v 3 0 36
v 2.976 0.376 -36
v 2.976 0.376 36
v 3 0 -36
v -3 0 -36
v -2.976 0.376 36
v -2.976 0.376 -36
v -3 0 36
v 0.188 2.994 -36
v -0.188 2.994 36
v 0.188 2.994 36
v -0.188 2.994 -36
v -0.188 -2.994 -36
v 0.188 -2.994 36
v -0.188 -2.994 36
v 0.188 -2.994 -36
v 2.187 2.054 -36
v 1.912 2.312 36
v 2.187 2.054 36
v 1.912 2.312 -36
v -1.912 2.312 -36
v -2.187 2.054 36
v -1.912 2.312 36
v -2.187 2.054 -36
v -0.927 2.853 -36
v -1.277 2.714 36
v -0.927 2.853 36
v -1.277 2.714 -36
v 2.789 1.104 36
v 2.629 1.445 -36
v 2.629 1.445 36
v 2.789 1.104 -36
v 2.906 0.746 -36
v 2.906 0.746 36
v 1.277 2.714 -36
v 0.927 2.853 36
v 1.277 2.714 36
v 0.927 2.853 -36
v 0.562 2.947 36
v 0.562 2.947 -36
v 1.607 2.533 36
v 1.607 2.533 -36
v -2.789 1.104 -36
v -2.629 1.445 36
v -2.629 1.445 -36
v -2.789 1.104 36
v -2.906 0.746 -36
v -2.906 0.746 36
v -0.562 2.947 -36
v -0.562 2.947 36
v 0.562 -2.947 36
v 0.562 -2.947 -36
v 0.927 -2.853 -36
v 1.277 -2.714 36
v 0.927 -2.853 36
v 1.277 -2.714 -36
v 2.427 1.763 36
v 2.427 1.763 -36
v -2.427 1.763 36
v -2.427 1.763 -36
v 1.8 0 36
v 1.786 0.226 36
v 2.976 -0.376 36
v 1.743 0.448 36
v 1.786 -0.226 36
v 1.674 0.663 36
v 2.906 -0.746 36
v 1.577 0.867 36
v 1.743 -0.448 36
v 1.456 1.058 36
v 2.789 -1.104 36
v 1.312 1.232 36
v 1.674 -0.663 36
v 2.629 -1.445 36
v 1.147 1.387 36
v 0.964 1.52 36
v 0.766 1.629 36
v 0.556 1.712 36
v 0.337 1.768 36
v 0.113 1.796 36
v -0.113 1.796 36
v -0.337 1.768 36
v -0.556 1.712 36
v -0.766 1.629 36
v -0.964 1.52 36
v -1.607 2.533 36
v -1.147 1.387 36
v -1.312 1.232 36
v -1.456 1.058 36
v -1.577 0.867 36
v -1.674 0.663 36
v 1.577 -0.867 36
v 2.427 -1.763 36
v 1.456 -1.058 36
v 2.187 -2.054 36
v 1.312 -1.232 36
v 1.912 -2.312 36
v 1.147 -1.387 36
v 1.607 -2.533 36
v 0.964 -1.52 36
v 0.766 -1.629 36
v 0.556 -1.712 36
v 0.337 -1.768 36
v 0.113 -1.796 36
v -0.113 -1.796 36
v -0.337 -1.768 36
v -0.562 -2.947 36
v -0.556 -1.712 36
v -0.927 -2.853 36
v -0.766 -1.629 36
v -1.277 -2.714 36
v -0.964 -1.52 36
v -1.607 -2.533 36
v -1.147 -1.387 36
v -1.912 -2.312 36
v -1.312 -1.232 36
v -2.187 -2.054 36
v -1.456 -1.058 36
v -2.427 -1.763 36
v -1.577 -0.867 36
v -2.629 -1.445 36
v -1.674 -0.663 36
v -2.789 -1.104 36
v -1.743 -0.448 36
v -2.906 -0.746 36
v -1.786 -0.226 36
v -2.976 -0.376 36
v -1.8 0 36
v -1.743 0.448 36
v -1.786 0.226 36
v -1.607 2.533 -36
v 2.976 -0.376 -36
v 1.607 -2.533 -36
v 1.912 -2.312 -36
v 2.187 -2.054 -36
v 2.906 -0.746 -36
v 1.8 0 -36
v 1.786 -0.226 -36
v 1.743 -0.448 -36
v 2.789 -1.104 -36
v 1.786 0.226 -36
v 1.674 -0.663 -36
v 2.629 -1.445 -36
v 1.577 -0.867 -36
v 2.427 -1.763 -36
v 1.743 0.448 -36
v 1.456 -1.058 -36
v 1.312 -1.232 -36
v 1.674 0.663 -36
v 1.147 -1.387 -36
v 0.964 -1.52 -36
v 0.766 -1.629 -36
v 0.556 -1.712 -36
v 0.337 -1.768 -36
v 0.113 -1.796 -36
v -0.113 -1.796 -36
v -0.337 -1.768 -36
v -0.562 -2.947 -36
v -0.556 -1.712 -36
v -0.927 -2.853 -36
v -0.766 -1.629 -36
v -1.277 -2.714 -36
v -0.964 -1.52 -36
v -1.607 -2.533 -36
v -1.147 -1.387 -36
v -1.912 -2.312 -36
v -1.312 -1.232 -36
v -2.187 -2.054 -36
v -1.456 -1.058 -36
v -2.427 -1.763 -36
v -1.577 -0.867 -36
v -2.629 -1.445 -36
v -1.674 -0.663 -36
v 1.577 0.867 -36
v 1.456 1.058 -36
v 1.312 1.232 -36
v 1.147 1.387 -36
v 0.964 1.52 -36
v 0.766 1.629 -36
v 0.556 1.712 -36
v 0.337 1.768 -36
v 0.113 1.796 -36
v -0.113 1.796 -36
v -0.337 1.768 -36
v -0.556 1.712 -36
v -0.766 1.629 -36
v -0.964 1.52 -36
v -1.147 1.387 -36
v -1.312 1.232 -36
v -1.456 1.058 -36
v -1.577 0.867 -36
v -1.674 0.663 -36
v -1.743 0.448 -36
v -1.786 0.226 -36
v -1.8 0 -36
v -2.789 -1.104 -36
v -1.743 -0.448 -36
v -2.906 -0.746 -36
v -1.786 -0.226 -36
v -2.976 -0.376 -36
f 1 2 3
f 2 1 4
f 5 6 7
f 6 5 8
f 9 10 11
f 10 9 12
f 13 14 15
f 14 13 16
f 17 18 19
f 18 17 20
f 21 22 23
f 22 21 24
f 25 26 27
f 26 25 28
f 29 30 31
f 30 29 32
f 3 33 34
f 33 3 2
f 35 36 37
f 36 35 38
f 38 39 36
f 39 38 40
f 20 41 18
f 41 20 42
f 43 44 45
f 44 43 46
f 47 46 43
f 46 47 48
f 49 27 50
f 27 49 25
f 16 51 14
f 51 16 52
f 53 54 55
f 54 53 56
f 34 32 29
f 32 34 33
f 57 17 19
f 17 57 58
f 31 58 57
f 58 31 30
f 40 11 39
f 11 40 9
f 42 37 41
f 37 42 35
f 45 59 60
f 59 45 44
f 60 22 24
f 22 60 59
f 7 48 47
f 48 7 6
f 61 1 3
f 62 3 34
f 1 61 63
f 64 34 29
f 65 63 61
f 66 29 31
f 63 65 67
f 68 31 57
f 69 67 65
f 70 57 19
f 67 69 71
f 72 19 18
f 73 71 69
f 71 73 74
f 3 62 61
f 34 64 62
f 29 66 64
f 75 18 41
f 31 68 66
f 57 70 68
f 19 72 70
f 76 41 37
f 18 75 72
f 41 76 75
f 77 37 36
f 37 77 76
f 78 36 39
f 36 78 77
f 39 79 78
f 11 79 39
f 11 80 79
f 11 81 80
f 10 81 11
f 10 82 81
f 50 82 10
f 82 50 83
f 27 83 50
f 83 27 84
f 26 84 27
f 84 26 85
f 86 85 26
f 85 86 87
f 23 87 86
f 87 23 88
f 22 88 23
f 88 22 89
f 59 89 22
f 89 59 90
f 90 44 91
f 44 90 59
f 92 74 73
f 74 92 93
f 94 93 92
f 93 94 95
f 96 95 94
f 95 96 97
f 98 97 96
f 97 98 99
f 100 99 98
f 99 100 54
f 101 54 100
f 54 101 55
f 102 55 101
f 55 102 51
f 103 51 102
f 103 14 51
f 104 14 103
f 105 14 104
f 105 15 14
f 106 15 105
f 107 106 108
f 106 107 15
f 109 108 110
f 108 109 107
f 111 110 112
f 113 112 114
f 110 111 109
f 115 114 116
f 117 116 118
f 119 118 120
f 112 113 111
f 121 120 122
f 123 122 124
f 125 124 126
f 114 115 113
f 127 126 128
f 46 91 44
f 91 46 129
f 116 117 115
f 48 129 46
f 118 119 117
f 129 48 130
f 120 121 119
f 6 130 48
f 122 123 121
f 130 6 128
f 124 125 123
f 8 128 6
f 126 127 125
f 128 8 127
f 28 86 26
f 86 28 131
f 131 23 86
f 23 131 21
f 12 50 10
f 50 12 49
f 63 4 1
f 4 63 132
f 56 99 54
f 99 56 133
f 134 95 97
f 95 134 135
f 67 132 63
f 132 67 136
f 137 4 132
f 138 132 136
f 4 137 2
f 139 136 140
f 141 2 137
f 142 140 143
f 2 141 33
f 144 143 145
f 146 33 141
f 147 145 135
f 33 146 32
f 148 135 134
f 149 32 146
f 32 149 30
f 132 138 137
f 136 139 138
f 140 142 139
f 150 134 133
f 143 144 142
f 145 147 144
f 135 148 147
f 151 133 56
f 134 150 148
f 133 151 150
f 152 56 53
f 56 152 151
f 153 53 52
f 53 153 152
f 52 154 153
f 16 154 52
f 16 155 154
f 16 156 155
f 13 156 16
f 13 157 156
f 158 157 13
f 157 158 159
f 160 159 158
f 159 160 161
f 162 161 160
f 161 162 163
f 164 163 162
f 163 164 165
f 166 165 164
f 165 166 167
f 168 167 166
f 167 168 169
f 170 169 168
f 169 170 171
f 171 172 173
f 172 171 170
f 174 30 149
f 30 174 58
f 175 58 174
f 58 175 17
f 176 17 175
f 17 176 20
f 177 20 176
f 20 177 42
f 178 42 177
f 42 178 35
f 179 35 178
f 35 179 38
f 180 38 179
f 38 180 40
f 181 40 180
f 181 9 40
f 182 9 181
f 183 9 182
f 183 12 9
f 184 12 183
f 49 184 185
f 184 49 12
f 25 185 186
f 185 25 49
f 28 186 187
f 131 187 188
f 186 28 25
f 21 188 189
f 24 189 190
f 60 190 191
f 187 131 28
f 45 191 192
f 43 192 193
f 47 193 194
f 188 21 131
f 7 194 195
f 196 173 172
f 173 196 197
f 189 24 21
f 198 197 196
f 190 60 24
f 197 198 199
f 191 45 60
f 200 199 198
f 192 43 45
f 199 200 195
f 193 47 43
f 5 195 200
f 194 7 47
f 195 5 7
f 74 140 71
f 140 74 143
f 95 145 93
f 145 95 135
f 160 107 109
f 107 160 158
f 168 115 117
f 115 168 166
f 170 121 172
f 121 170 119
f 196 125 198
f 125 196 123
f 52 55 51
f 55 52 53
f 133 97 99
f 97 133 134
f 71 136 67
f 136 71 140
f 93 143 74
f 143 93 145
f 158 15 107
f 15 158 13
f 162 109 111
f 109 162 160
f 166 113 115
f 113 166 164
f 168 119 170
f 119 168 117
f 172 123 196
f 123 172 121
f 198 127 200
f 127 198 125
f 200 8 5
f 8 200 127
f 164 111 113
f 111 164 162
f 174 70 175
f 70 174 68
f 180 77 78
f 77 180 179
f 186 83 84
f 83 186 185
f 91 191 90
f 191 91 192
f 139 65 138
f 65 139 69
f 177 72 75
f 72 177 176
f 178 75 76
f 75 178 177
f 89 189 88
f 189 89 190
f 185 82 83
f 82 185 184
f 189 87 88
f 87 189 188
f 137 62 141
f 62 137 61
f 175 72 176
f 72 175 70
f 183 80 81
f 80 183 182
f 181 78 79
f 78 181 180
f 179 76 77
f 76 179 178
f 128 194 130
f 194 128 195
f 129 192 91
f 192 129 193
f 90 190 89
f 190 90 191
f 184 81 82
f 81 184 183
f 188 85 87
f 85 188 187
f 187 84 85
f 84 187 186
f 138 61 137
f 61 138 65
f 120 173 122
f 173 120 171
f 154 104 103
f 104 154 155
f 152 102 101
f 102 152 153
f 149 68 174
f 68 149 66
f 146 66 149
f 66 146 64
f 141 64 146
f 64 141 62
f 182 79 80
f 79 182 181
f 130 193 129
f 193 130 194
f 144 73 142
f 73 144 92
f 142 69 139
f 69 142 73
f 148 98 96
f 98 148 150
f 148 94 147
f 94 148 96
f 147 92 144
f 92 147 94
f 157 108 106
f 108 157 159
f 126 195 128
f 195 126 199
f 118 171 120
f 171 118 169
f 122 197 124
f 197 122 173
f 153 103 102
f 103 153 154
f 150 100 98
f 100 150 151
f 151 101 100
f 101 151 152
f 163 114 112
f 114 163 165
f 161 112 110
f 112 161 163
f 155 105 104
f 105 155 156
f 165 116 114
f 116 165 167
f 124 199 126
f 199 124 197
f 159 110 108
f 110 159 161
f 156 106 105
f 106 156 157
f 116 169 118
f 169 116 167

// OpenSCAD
$fn = 50;


difference() {
	union() {
		translate(v = [0, 0, -36.0000000000]) {
			cylinder(h = 72, r = 3.0000000000);
		}
	}
	union() {
		translate(v = [0, 0, -100.0000000000]) {
			cylinder(h = 200, r = 1.8000000000);
		}
	}
}
